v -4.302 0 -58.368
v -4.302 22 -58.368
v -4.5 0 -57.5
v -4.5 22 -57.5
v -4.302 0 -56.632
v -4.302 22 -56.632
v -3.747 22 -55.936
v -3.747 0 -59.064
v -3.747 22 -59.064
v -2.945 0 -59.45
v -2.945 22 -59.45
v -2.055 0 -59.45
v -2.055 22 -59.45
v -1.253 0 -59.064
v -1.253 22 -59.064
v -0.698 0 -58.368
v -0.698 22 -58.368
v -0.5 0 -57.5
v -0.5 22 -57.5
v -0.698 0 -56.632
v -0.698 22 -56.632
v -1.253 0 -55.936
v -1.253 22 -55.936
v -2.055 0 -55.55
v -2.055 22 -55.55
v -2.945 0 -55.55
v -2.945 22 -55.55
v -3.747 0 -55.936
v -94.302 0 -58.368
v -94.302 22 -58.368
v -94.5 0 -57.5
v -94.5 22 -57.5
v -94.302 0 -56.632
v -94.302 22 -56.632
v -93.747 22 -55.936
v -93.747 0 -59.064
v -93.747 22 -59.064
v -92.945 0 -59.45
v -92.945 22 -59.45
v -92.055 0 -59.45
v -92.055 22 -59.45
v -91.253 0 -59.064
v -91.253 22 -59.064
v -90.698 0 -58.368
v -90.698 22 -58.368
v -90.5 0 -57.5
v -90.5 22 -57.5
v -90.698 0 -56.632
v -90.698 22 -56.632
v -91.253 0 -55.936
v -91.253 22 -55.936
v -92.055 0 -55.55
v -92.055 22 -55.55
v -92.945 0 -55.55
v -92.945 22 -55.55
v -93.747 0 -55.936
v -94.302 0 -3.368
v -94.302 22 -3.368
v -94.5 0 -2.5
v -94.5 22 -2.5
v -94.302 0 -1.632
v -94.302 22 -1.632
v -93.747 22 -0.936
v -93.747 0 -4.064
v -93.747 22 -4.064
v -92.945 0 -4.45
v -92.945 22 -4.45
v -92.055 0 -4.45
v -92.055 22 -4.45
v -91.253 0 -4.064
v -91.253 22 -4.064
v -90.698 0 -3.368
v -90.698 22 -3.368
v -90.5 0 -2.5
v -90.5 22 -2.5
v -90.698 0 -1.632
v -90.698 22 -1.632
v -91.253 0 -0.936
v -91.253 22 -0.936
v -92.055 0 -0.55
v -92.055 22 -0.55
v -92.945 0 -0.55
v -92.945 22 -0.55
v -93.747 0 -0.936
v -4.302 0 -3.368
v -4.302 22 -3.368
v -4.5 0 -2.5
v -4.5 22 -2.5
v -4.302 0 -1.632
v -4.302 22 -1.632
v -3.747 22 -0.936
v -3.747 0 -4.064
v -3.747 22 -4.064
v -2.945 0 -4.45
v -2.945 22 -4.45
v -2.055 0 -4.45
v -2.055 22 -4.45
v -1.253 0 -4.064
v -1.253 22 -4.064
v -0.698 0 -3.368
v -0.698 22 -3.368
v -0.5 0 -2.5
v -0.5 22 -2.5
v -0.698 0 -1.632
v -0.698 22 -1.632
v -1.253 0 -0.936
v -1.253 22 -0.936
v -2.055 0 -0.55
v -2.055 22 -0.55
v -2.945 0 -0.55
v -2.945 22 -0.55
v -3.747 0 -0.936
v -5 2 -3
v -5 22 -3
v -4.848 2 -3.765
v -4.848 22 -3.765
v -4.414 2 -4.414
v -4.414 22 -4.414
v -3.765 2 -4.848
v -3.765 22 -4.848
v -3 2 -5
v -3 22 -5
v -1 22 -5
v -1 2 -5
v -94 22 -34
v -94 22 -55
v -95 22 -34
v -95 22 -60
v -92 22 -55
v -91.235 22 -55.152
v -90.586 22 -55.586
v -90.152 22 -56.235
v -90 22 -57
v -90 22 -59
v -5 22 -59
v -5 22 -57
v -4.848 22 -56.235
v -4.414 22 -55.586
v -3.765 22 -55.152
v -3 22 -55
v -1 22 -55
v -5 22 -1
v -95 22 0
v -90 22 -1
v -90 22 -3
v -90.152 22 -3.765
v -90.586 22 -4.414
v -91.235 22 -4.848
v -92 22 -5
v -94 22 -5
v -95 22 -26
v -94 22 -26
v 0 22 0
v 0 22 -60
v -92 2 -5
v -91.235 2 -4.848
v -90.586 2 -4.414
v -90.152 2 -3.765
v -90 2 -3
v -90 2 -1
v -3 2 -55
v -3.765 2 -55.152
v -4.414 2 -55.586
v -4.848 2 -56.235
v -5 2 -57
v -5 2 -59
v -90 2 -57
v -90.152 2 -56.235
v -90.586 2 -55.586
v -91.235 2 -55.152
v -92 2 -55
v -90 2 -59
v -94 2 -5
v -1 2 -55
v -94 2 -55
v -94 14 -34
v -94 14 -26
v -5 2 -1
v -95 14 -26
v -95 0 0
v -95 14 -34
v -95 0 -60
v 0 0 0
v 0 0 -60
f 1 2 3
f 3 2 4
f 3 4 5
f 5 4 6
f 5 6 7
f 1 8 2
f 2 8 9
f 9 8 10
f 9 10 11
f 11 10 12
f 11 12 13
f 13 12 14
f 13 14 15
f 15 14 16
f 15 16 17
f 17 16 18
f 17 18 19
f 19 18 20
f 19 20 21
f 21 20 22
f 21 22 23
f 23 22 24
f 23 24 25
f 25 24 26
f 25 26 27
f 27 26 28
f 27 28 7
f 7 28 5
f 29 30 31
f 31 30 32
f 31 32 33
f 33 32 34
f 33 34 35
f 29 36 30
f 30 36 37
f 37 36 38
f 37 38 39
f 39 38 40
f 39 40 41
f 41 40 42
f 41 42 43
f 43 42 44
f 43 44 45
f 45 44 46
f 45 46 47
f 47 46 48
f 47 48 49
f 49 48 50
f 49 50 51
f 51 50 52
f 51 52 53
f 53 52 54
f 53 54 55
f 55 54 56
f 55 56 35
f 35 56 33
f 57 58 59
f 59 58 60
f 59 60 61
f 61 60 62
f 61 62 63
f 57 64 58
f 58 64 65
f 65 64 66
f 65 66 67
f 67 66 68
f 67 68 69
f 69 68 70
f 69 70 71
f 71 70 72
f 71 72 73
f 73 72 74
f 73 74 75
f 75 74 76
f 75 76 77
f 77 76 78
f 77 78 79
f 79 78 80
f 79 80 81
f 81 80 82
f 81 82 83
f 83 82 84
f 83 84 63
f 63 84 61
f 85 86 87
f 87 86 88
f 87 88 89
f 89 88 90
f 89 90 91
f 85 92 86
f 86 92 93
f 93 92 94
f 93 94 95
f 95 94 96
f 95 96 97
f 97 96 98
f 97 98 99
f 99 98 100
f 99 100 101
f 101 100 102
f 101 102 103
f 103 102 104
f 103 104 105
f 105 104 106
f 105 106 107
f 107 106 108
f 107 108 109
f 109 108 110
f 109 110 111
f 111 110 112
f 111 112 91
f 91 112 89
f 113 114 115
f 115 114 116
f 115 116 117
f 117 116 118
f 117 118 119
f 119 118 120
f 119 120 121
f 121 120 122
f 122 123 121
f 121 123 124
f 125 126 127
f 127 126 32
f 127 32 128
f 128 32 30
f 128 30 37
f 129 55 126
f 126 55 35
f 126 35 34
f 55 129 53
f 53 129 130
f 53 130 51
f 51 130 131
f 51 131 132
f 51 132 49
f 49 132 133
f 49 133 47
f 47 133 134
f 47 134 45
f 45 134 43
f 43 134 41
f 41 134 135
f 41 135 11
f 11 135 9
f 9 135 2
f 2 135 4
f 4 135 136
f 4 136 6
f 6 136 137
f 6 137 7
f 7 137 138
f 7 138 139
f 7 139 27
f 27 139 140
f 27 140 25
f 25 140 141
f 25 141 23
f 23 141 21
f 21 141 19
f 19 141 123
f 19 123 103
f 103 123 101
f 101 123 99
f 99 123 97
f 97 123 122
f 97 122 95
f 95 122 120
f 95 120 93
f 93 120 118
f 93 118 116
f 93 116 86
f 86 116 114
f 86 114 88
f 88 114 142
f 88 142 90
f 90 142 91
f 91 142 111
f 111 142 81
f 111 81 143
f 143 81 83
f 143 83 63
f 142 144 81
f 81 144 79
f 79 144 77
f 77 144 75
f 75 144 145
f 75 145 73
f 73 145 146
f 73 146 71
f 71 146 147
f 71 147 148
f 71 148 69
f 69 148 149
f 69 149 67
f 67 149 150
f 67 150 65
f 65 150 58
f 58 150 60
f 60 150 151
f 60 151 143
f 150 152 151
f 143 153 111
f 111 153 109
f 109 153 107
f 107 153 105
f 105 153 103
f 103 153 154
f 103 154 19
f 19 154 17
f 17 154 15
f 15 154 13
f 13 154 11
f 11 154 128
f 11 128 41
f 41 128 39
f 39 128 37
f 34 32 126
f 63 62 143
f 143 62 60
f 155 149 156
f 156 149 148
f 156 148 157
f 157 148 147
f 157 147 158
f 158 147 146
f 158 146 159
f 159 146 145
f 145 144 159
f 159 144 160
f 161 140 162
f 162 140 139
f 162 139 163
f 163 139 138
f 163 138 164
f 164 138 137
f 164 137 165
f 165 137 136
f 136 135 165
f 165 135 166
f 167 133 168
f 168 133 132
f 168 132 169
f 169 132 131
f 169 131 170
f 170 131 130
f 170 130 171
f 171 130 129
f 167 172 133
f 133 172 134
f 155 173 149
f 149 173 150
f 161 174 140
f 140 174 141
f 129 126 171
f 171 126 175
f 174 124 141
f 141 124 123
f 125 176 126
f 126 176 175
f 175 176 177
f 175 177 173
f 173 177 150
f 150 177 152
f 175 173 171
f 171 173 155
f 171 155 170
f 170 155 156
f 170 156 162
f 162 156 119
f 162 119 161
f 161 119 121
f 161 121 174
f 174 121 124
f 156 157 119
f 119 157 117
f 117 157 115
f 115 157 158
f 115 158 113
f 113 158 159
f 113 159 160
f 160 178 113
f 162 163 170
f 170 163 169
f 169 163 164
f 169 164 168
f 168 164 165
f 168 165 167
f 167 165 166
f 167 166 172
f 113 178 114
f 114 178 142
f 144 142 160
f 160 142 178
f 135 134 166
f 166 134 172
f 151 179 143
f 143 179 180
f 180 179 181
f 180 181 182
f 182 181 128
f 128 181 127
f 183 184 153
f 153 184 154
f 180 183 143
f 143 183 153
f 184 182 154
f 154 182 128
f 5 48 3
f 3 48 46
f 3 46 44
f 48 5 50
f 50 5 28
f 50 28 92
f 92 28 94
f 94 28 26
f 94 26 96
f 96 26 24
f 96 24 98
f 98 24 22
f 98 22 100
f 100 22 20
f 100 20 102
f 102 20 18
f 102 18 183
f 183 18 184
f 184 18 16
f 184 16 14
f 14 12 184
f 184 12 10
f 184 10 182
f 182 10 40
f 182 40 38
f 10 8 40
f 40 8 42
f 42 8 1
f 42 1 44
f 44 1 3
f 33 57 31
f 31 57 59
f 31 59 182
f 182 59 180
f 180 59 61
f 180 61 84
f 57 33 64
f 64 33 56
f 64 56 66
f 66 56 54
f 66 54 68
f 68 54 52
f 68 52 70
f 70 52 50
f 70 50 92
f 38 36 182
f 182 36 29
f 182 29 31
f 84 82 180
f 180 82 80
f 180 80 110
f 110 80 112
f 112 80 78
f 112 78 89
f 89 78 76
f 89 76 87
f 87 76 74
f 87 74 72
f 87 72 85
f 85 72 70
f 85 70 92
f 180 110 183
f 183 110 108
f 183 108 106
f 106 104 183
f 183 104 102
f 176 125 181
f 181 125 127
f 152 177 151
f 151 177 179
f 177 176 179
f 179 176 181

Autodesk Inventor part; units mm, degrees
ref_plane "YZ Plane" through (0, 0, 0) normal (1, 0, 0) x (0, 1, 0)
ref_plane "XZ Plane" through (0, 0, 0) normal (0, 1, 0) x (-1, 0, 0)
ref_plane "XY Plane" through (0, 0, 0) normal (0, 0, 1) x (1, 0, 0)
sketch "Szkic1" plane through (0, 0, 0) normal (0, 1, 0) x (-1, 0, 0)
  line L0 (0, 0) -> (90, 0)
  line L1 (90, 0) -> (90, -60)
  line L2 (90, -60) -> (0, -60)
  line L3 (0, -60) -> (0, 0)
  dimension "d0" = 90
  dimension "d1" = 60
extrude "Wyciągnięcie proste1" add sketch "Szkic1" along normal blind 2
sketch "Szkic15" plane through (-90, 0, -60) normal (-1, 0, 0) x (0, 0, 1)
  line L0 (0, 0) -> (60, 0)
  line L1 (60, 0) -> (60, 2)
  line L2 (60, 2) -> (0, 2)
  line L3 (0, 2) -> (0, 0)
extrude "Wyciągnięcie proste5" add sketch "Szkic15" along normal blind 5
sketch "Szkic16" plane through (0, 2, 0) normal (0, 1, 0) x (1, 0, 0)
  line L0 (0, 60) -> (-95, 60) projected
  line L1 (-95, 60) -> (-95, 0) projected
  line L2 (-94, 60) -> (-95, 60)
  line L3 (-95, 60) -> (-95, 0)
  line L4 (-95, 0) -> (-94, 0)
  line L5 (-94, 0) -> (-94, 60)
  line L6 (-95, 1) -> (0, 1)
  line L7 (0, 1) -> (0, 0)
  line L8 (0, 0) -> (-95, 0)
  line L9 (-95, 0) -> (-95, 1)
  line L10 (-1, 0) -> (0, 0)
  line L11 (0, 0) -> (0, 60)
  line L12 (0, 60) -> (-1, 60)
  line L13 (-1, 60) -> (-1, 0)
  line L14 (-1, 59) -> (-95, 59)
  line L15 (-95, 59) -> (-95, 60)
  line L16 (-95, 60) -> (-1, 60)
  line L17 (-1, 60) -> (-1, 59)
  point P0 (-94, 59)
  point P1 (-1, 1)
  point P2 (-94, 1)
extrude "Wyciągnięcie proste6" add sketch "Szkic16" along normal blind 20 contours L11 L6 L13 L0 | L13 L14 L5 L0 | L7 L8 L13 L6 | L5 L14 L1 L0 | L13 L8 L5 L6 | L5 L6 L1 L14 | L5 L4 L1 L6
sketch "Szkic21" plane through (0, 2, 0) normal (0, 1, 0) x (1, 0, 0)
  line L0 (-1, 59) -> (-1, 1) projected
  line L1 (-94, 1) -> (-1, 1) projected
  line L2 (-1, 5) -> (-5, 5)
  line L3 (-5, 5) -> (-5, 1)
  line L4 (-5, 1) -> (-1, 1)
  line L5 (-1, 1) -> (-1, 5)
  point P0 (0, 0)
  dimension "d61" = 4
extrude "Wyciągnięcie proste8" add sketch "Szkic21" along normal blind 20
sketch "Szkic22" plane through (0, 2, 0) normal (0, 1, 0) x (1, 0, 0)
  line L0 (-1, 59) -> (-1, 1) projected
  line L1 (-1, 55) -> (-5, 55)
  line L2 (-5, 55) -> (-5, 59)
  line L3 (-5, 59) -> (-1, 59)
  line L4 (-1, 59) -> (-1, 55)
  line L5 (-94, 1) -> (-94, 59) projected
  line L6 (-1, 59) -> (-94, 59) projected
  line L7 (-94, 55) -> (-90, 55)
  line L8 (-90, 55) -> (-90, 59)
  line L9 (-90, 59) -> (-94, 59)
  line L10 (-94, 59) -> (-94, 55)
  line L11 (-94, 1) -> (-5, 1) projected
  line L12 (-94, 5) -> (-90, 5)
  line L13 (-90, 5) -> (-90, 1)
  line L14 (-90, 1) -> (-94, 1)
  line L15 (-94, 1) -> (-94, 5)
  point P0 (0, 0)
  point P1 (-1, 5)
  dimension "d64" = 4
  dimension "d65" = 4
extrude "Wyciągnięcie proste9" add sketch "Szkic22" along normal blind 20
fillet "Zaokrąglenie1" radius 2 4 edges at (-90, 12, -55) (-5, 12, -55) (-90, 12, -5) (-5, 12, -5)
sketch "Szkic23" plane through (0, 22, 0) normal (0, 1, 0) x (1, 0, 0)
  point P0 (0, 0)
  point P1 (-2.5, 2.5)
  point P2 (-92.5, 2.5)
  point P3 (-92.5, 57.5)
  point P4 (-2.5, 57.5)
hole "Otwór5" at (-2.5, 22, -2.5) at (-92.5, 22, -2.5) at (-92.5, 22, -57.5) at (-2.5, 22, -57.5) direction (0, -1, 0) diameter 4 end through all
sketch "Szkic24" plane through (-95, 0, -60) normal (-1, 0, 0) x (0, 0, 1)
  point P0 (60, 0)
sketch "Szkic25" plane through (-95, 0, 0) normal (0, 0, 1) x (1, 0, 0)
  point P0 (95, 0)
sketch "Szkic26" plane through (-95, 0, -60) normal (-1, 0, 0) x (0, 0, 1)
  line L0 (60, 22) -> (0, 22) projected
  line L1 (26, 22) -> (34, 22)
  line L2 (34, 22) -> (34, 14)
  line L3 (34, 14) -> (26, 14)
  line L4 (26, 14) -> (26, 22)
  point P0 (60, 0)
  dimension "d76" = 8
  dimension "d77" = 8
extrude "Wyciągnięcie proste10" cut sketch "Szkic26" against normal blind 10
properties part number "góra"
